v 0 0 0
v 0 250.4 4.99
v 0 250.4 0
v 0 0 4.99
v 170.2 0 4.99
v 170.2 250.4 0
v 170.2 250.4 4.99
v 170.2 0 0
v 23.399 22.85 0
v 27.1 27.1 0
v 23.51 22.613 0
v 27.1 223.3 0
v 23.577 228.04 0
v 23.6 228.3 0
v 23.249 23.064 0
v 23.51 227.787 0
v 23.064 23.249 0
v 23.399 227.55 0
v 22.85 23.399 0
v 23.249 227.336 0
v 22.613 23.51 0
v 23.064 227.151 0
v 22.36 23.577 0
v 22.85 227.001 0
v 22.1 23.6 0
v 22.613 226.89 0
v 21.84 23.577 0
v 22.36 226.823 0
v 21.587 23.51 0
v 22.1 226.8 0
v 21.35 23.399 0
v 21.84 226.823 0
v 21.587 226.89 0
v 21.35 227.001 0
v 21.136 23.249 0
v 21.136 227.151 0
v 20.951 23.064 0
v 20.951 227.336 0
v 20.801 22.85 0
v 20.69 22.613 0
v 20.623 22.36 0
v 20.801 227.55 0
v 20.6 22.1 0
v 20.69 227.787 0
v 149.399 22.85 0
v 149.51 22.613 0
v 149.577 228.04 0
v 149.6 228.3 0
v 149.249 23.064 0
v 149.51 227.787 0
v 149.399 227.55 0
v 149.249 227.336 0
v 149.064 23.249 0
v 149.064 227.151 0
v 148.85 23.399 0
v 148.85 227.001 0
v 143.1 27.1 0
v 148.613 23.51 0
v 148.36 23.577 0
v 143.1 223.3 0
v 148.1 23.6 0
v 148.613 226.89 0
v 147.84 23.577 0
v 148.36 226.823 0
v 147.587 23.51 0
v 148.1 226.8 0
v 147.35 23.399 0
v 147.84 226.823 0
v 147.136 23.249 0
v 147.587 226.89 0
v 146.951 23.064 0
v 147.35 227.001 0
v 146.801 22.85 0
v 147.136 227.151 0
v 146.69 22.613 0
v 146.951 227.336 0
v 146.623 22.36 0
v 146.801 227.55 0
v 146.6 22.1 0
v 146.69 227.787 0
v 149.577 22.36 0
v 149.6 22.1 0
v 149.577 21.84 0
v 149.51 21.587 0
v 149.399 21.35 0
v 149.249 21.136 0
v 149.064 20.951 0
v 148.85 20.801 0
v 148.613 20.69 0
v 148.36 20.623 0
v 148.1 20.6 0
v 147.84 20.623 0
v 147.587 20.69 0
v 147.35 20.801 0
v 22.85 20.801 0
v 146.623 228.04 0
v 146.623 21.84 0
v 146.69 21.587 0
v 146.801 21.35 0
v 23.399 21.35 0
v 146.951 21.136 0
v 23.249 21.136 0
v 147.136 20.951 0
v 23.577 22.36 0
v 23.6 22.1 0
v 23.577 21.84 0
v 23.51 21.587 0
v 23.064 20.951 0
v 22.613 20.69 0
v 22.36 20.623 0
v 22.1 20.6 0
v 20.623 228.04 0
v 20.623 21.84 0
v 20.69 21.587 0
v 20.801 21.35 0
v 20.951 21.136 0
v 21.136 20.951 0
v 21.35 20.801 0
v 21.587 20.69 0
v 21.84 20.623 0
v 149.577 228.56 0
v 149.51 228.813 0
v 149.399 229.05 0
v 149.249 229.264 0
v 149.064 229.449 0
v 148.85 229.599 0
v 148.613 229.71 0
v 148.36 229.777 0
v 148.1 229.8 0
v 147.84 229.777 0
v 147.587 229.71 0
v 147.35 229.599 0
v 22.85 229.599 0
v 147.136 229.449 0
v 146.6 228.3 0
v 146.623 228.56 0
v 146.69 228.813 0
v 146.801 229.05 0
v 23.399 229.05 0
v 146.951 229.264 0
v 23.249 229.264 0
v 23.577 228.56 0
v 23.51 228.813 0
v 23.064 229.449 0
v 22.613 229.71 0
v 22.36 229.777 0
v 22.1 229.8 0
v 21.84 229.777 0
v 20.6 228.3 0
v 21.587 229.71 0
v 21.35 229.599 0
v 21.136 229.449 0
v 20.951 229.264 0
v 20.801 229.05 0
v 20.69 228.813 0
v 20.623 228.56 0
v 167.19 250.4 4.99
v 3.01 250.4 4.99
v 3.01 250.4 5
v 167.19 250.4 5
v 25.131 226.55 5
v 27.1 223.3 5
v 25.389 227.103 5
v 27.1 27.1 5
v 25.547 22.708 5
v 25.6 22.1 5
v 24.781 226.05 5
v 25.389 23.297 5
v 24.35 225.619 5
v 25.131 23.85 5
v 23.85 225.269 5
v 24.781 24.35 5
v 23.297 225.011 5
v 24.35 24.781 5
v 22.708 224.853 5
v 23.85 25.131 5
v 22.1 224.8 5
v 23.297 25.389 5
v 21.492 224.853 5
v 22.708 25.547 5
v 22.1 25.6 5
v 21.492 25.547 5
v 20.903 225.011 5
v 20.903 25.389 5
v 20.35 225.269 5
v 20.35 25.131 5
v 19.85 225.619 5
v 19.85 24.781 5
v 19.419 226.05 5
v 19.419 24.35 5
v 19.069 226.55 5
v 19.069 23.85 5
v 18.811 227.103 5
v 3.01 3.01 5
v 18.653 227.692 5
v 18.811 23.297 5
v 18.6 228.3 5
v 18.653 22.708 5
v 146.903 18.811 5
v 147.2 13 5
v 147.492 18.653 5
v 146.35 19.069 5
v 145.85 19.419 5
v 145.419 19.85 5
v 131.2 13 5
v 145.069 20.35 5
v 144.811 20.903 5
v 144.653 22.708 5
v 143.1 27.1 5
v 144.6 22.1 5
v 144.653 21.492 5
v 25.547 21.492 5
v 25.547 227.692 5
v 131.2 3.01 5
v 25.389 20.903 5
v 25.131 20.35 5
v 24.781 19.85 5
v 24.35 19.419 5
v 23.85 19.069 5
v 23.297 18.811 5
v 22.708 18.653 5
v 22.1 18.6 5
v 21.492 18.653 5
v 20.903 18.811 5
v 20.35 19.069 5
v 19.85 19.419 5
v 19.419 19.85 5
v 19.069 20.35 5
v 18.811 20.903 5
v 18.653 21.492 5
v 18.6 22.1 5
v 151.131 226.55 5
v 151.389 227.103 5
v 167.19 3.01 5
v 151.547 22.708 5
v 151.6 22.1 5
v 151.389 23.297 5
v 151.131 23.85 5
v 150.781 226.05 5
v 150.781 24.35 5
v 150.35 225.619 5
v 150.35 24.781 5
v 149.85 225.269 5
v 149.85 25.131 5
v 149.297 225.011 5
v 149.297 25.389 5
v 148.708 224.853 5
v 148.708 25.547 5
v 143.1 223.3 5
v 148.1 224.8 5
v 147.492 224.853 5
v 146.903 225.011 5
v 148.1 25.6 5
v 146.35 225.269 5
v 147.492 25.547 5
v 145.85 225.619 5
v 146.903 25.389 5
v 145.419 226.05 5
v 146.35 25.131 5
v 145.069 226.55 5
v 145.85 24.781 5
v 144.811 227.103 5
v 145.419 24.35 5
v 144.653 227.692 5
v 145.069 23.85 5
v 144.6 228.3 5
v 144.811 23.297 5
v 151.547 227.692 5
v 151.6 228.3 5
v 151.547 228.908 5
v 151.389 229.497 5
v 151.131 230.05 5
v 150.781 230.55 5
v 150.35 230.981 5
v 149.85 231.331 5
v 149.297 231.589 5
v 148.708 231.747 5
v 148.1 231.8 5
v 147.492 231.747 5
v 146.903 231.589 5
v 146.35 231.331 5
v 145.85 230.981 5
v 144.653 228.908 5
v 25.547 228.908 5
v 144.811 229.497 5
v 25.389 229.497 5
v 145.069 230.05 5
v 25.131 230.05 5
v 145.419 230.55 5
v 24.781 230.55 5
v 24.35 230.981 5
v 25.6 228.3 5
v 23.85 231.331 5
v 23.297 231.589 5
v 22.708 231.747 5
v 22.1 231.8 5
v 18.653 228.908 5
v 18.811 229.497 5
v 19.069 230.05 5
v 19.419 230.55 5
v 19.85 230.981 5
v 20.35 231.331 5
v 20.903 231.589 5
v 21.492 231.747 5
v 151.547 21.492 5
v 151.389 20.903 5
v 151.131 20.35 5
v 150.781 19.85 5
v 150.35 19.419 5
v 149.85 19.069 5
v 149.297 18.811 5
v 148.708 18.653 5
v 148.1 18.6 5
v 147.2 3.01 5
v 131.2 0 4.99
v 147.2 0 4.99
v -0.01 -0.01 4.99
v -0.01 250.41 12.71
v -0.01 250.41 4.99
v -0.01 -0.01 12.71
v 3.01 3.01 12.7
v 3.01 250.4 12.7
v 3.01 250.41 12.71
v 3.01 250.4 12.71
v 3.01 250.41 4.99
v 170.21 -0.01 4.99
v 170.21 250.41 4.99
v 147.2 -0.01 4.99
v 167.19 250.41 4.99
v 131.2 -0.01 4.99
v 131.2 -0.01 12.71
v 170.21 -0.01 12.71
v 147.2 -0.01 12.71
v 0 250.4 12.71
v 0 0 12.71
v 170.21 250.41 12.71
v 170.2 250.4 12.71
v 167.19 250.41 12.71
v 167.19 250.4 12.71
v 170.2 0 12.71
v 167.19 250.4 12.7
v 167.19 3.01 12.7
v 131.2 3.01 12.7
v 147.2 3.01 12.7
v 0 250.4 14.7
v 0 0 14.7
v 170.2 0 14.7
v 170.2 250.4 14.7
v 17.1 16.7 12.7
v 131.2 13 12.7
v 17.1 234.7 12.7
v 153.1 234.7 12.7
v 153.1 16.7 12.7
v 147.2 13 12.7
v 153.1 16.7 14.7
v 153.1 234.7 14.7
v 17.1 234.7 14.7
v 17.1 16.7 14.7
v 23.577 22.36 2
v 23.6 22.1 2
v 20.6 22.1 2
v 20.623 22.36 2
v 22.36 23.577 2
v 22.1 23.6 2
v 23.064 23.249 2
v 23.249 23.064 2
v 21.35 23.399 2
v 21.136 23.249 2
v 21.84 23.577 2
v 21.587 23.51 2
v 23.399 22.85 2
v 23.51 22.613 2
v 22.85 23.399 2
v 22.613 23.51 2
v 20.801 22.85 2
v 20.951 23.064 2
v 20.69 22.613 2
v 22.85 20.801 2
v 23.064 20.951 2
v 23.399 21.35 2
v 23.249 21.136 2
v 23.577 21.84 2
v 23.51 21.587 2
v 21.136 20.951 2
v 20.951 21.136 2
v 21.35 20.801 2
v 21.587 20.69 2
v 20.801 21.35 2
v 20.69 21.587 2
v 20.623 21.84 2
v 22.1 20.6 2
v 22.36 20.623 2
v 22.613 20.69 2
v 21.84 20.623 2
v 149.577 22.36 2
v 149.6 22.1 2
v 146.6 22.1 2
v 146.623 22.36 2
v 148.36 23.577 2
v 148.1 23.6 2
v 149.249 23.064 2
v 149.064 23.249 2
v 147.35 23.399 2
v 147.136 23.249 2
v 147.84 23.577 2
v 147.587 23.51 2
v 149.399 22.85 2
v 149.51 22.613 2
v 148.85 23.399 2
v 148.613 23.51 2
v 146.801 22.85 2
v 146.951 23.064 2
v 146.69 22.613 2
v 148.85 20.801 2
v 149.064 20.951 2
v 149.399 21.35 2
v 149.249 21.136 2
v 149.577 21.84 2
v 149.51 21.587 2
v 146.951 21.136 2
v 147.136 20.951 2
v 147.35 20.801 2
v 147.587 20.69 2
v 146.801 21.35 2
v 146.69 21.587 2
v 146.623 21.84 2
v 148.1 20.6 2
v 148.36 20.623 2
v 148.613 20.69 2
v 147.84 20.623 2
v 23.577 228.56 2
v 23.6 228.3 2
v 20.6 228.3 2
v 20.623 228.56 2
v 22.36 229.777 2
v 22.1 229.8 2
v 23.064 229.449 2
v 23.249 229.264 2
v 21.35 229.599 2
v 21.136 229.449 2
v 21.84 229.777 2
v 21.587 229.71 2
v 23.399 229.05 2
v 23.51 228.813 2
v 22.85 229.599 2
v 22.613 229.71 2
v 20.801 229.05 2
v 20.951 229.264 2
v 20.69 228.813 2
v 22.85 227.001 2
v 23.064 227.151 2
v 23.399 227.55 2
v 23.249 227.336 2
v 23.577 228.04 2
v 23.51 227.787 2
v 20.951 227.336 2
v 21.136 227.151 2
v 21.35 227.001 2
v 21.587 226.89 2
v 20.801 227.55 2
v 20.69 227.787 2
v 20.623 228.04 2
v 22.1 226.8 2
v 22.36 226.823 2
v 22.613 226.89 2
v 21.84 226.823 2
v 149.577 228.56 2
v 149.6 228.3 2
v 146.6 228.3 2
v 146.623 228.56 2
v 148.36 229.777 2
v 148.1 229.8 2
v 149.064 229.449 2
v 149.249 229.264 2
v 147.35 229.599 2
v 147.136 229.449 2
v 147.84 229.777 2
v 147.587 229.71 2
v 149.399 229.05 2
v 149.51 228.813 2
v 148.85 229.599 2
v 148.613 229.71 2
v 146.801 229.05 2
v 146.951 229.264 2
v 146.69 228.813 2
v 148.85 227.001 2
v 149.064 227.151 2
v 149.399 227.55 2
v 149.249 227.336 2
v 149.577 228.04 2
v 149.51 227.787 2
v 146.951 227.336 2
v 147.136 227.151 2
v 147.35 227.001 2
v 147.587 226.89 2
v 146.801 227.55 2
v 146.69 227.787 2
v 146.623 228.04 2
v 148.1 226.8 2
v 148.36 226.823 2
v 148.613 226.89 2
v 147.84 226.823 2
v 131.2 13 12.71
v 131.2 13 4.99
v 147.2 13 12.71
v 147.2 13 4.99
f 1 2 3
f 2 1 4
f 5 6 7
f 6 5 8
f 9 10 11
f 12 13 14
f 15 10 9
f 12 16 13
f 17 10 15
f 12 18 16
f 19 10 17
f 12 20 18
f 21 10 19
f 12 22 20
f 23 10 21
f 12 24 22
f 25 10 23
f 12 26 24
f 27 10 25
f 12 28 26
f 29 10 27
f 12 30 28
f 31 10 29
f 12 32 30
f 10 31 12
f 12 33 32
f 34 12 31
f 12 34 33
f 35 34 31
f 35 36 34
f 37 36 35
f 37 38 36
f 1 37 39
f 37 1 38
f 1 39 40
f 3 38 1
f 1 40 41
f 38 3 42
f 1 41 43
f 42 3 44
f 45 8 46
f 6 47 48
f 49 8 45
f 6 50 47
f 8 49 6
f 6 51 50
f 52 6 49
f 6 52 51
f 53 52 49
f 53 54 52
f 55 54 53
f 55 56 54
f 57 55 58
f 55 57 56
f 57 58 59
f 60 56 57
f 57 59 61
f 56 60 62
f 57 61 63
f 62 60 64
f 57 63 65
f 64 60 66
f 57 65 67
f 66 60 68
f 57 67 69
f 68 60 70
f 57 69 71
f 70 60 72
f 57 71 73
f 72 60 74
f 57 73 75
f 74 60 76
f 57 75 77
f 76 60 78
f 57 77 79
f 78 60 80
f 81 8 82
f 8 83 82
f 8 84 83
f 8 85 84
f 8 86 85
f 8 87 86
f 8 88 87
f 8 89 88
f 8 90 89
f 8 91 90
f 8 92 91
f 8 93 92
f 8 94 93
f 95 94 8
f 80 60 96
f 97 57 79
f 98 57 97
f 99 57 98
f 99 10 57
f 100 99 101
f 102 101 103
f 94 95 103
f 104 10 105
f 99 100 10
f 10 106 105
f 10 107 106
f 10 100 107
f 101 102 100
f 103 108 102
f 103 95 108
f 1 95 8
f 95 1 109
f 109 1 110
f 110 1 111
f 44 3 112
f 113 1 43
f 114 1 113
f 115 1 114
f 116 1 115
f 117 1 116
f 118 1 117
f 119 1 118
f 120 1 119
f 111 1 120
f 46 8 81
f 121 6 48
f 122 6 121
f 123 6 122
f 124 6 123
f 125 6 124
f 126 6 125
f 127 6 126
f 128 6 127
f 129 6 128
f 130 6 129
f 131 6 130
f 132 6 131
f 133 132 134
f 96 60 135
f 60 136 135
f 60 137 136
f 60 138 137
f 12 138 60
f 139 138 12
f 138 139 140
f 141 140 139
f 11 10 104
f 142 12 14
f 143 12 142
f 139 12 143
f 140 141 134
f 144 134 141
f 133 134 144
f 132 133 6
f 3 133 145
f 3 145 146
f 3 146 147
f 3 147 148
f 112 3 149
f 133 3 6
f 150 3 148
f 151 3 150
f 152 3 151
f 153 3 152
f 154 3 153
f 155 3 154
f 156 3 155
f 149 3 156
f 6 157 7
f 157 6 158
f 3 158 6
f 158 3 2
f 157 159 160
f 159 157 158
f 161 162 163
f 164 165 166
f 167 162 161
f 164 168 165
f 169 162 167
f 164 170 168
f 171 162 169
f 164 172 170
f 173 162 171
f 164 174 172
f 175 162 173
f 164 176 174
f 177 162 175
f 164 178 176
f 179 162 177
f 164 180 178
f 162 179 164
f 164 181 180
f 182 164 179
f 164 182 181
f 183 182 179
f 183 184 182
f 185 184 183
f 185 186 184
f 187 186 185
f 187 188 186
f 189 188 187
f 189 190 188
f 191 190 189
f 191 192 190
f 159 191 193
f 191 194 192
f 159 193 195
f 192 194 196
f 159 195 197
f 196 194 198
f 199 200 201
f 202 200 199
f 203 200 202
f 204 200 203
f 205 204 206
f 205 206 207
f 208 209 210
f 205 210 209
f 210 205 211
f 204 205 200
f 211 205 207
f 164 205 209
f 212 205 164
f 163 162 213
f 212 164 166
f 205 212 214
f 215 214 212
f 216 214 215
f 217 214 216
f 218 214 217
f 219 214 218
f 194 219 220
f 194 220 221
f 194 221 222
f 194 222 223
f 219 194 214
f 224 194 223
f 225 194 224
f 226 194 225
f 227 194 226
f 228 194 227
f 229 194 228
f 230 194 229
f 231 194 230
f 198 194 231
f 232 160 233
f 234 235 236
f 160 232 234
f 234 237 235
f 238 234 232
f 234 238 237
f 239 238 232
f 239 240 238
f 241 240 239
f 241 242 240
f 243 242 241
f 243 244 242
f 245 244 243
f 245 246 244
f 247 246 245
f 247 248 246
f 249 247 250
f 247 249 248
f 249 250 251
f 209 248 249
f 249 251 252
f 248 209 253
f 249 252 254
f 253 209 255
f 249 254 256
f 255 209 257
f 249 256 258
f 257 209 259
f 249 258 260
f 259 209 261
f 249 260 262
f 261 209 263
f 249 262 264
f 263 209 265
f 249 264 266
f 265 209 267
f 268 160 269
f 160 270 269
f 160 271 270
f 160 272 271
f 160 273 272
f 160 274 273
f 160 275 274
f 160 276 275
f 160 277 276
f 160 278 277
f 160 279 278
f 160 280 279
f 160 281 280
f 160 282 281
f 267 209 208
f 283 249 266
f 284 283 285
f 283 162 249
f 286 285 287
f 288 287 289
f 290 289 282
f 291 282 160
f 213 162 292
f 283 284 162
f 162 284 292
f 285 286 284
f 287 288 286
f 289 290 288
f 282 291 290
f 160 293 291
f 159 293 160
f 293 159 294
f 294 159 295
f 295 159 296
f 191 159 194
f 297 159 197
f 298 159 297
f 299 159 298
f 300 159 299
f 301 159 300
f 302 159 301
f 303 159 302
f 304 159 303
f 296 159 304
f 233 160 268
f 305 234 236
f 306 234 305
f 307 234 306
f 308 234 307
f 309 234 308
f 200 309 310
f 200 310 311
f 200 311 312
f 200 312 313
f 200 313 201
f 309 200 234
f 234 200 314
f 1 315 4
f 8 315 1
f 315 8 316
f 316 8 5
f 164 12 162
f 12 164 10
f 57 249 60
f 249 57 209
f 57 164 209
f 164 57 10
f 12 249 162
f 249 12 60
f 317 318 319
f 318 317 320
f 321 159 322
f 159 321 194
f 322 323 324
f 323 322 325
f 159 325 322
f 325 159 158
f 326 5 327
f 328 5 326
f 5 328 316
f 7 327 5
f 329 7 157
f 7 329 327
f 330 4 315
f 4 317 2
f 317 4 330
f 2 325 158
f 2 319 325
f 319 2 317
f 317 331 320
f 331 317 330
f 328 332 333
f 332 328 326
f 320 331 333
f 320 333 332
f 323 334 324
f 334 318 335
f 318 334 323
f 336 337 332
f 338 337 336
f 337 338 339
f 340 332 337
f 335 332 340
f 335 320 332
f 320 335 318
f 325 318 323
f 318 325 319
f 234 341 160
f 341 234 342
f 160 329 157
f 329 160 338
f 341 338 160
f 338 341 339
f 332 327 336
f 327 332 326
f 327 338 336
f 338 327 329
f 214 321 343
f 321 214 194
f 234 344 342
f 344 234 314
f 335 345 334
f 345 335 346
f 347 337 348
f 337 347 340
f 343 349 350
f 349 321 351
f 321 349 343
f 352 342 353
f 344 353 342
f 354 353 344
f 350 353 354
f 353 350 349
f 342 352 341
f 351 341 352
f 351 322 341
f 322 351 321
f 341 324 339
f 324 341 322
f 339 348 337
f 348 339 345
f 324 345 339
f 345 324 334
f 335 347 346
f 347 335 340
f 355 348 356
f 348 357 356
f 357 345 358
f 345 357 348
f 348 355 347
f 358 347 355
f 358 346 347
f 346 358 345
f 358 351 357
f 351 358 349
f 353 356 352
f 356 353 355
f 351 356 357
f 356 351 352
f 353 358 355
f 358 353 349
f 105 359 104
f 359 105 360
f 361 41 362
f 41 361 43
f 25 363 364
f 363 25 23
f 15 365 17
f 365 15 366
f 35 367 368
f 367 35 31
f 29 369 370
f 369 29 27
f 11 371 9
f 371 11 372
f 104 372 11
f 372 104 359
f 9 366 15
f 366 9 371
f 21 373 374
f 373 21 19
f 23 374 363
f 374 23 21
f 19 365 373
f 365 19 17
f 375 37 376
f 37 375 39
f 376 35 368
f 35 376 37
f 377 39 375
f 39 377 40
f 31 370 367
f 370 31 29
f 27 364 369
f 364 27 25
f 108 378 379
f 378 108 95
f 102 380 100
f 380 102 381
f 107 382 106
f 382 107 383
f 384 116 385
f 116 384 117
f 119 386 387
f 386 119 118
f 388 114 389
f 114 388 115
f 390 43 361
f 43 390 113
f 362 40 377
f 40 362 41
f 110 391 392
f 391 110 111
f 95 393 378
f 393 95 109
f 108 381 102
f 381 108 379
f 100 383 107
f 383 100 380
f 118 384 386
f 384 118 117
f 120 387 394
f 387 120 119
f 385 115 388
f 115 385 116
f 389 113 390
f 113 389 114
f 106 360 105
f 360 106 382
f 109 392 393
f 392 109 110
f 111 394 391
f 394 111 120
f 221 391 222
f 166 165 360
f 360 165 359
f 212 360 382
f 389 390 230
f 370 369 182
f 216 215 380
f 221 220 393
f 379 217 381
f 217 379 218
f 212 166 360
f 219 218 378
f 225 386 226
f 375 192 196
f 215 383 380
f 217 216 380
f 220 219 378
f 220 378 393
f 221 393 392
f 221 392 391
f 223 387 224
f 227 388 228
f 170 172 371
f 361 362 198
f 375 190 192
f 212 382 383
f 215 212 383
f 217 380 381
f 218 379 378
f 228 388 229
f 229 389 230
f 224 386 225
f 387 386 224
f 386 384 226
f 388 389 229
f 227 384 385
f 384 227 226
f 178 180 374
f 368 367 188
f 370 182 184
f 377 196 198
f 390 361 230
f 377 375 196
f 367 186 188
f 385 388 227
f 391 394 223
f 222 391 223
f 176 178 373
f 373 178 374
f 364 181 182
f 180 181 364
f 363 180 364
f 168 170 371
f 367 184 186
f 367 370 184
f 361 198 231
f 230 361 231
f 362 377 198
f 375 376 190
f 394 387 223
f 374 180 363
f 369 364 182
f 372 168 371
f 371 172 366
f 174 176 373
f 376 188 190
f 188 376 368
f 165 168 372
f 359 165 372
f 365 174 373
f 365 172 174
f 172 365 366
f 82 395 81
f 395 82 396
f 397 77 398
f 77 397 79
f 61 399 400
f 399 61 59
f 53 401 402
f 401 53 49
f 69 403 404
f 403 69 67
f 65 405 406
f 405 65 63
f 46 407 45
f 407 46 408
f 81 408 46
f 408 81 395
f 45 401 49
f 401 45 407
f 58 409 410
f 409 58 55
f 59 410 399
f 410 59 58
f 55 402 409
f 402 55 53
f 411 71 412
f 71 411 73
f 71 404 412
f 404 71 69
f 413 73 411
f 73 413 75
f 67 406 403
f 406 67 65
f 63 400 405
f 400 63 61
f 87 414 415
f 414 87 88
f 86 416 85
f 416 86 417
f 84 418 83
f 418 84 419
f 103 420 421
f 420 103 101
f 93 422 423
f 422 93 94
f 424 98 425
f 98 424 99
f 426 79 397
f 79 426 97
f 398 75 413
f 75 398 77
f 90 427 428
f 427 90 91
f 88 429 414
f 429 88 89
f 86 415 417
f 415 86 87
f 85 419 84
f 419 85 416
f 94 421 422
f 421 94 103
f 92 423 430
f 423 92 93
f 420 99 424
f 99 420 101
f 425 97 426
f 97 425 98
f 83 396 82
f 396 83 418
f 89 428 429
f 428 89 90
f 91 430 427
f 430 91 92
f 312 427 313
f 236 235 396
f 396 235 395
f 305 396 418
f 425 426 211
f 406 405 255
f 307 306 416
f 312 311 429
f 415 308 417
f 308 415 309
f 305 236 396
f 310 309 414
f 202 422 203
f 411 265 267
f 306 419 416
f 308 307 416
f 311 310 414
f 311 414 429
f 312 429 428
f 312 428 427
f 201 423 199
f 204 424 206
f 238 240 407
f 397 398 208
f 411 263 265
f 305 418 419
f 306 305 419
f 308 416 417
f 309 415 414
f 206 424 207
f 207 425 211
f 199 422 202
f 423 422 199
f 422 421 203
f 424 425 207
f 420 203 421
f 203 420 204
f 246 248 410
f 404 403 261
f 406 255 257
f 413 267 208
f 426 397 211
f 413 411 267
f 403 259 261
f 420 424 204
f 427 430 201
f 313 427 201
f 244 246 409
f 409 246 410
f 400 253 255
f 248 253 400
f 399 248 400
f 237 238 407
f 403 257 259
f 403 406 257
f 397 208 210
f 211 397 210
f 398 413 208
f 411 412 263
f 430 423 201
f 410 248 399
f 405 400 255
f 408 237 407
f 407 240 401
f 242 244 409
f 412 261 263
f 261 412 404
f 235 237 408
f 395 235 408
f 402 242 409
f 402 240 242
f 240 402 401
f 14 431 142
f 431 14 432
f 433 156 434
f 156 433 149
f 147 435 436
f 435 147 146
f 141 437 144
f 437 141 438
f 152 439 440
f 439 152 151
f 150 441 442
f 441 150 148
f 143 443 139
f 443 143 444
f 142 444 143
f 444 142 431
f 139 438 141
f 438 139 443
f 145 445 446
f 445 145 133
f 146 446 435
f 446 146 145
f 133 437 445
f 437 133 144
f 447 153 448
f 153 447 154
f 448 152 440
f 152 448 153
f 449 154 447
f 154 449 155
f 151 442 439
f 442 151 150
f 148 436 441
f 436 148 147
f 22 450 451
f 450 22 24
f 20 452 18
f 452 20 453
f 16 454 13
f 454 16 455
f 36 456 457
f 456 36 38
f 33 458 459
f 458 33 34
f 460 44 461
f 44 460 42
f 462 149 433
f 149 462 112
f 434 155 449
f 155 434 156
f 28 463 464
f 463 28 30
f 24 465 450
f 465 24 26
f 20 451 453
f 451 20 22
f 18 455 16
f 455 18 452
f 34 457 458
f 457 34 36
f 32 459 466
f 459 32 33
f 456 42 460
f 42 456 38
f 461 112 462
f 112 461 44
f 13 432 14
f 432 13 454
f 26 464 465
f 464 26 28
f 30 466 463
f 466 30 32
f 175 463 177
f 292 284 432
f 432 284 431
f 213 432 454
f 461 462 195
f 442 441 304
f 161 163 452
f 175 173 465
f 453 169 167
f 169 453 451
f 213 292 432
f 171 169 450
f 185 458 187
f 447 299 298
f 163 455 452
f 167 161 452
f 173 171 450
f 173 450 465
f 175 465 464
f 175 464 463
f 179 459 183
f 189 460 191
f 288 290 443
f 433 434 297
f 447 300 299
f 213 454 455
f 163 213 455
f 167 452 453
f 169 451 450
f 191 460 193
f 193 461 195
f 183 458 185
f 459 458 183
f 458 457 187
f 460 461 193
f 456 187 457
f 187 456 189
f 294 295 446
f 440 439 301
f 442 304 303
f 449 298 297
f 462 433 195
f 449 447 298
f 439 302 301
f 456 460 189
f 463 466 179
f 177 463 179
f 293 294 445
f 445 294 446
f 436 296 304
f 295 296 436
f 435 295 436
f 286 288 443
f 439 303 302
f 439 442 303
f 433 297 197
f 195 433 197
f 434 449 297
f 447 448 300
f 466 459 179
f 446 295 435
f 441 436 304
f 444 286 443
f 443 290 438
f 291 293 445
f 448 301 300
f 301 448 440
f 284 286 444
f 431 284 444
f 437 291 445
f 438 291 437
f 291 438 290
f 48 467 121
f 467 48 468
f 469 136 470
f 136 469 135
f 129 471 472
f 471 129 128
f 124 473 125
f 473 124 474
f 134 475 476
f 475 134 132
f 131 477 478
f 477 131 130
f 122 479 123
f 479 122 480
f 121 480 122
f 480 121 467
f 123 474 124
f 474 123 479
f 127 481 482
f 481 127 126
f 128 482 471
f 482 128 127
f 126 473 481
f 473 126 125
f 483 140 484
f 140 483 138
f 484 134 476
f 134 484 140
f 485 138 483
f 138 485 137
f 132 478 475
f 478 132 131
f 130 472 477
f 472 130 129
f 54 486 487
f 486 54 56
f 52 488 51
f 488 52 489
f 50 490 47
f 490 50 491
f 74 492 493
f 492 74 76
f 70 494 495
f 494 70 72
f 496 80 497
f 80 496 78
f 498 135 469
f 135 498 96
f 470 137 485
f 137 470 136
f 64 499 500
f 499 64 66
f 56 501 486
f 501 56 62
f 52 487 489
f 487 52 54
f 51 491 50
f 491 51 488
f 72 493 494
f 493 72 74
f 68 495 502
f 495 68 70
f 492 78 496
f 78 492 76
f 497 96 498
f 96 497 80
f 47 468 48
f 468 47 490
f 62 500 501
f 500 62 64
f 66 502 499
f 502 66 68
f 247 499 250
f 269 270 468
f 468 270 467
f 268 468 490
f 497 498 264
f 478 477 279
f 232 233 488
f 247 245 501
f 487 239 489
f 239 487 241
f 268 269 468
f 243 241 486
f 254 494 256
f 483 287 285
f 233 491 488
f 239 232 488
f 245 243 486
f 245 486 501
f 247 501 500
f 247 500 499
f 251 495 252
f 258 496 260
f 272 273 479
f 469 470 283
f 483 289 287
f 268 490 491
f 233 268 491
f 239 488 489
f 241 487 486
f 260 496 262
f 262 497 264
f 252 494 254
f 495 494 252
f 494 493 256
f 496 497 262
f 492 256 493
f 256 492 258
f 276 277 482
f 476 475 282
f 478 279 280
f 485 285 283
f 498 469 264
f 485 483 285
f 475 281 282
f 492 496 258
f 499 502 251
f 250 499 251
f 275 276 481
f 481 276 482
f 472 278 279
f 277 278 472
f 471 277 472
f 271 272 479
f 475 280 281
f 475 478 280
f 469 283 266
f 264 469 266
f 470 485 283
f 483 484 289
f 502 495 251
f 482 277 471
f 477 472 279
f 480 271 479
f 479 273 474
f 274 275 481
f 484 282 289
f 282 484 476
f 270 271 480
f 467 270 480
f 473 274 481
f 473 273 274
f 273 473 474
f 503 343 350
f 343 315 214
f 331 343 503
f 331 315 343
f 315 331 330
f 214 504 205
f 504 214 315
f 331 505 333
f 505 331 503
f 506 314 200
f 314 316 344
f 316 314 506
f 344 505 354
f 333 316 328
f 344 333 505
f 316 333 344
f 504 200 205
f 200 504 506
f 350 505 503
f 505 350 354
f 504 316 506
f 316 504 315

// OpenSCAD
// ============================================================
// Tablet Wall Holder — Huawei MediaPad M5 Lite (BAH2-W19)
// See README.md for design description.
// ============================================================

// --- Tablet Dimensions (Huawei MediaPad M5 Lite BAH2-W19) ---
tablet_width   = 162.2;
tablet_height  = 243.4;
tablet_depth   = 7.7;

// --- Screen Area ---
screen_width   = 136;
screen_height  = 218;

// --- Clearance ---
clearance      = 1.0;

// --- Wall Thicknesses ---
back_thickness  = 5.0;   // backplate thickness (Z direction)
wall_thickness  = 3.0;   // side wall thickness (X/Y direction)
front_thickness = 2.0;   // front bezel thickness (Z direction)

// --- Screw Holes ---
screw_dia      = 3.0;  // shaft diameter (3mm screw)
screw_head_dia = 7.0;  // head recess diameter (7mm head)
screw_head_dep = 3.0;  // head recess depth (3mm head height)

// --- Screw Position ---
// Screws are positioned ~5mm from the screen window edge,
// so they are visible/accessible through the frontplate opening.
screw_margin   = 5.0;  // distance from screen window edge to screw center

// --- USB-C Cutout ---
usb_width      = 16;
usb_height     = 10;
usb_from_right = 27;  // from RIGHT edge of tablet to USB-C center

// --- Backplate Inner Cutout Margin ---
// The backplate inner cutout must be wider than the screw position
// so the screw holes are within the backplate frame.
// Holes shall be not nearer than 5mm to the edge of the back panel.
backplate_margin = 5.0; // extra margin beyond screw center

// ============================================================
// DERIVED DIMENSIONS
// ============================================================

// Cavity dimensions (where the tablet sits)
cavity_w = tablet_width  + 2 * clearance;
cavity_h = tablet_height + clearance;  // open at top (+1mm at top)

// Outer dimensions of the holder (same for all frames)
// backplate_rim = wall_thickness so side walls are at the outer edge
outer_w = cavity_w + 2 * wall_thickness;
outer_h = cavity_h + 2 * wall_thickness;

// Cavity position (from outer edge, inward by wall_thickness)
cavity_x = wall_thickness;
cavity_y = wall_thickness;

// Frontplate inner cutout = screen window (centered on tablet)
fp_inner_x = cavity_x + clearance + (tablet_width  - screen_width)  / 2;
fp_inner_y = cavity_y + clearance + (tablet_height - screen_height) / 2;

// Screw position: ~5mm from screen window edge
screw_from_edge = fp_inner_x + screw_margin;

// Backplate inner cutout: wider than screw position by margin
backplate_inner = screw_from_edge + backplate_margin;

// USB-C center X (relative to outer left edge)
usb_cx = cavity_x + clearance + tablet_width - usb_from_right;

// ============================================================
// Helper: Outer polygon (counter-clockwise)
// ============================================================
function outer_poly(w, h) = [
    [0, 0], [w, 0], [w, h], [0, h]
];

// ============================================================
// Helper: Inner cutout polygon (counter-clockwise)
// ============================================================
function inner_poly(w, h, left, right, bottom, top) = [
    [left, bottom],
    [w - right, bottom],
    [w - right, h - top],
    [left, h - top]
];

// ============================================================
// Screw Hole Module
// Countersunk from the FRONT so screw heads are recessed
// into the backplate and accessible from the front.
// Shaft goes through the backplate only.
// ============================================================

module screw_hole() {
    // Shaft through the backplate only (3mm diameter)
    cylinder(h = back_thickness, d = screw_dia, $fn = 36);
    // Countersunk head at the front of the backplate (Z=back_thickness)
    // Conical recess for flathead screw: 3mm at bottom (shaft), 7mm at top (head)
    // 3mm deep, recessed into the backplate so it doesn't scratch the tablet
    // d1 = screw_dia (bottom, matches shaft), d2 = screw_head_dia (top, flathead)
    translate([0, 0, back_thickness - screw_head_dep])
        cylinder(h = screw_head_dep, d1 = screw_dia, d2 = screw_head_dia, $fn = 36);
}

// ============================================================
// Main Holder
// ============================================================
module tablet_holder() {
    difference() {
        union() {
            // 1. BACKPLATE — frame (not solid) against the wall
            // Outer rectangle minus inner cutout.
            // The backplate frame is broader inwards than the frontplate,
            // meaning the backplate extends further toward the center
            // than the frontplate's inner cutout (screen window).
            // This allows screw holes to be positioned in the backplate
            // area that is visible through the screen window.
            difference() {
                linear_extrude(height = back_thickness)
                    polygon(outer_poly(outer_w, outer_h));
                translate([0, 0, -0.01])
                    linear_extrude(height = back_thickness + 0.02)
                        polygon(inner_poly(outer_w, outer_h,
                            backplate_inner, backplate_inner,
                            backplate_inner, backplate_inner));
            }

            // 2. SIDE FRAME — 3-sided wall (left, right, bottom)
            // Forms the cavity for the tablet. Open at top for slide-in.
            // Cavity bottom/right/left is formed by the side frame.
            // Cavity front/back is formed by the frontplate and backplate.
            // Walls are wall_thickness wide, positioned at the CAVITY EDGE
            // (extending outward from the cavity).
            translate([0, 0, back_thickness - 0.01]) {
                // Left wall: from cavity_x - wall_thickness to cavity_x
                linear_extrude(height = tablet_depth + 0.02)
                    polygon([
                        [cavity_x - wall_thickness - 0.01, -0.01],
                        [cavity_x + 0.01, -0.01],
                        [cavity_x + 0.01, outer_h + 0.01],
                        [cavity_x - wall_thickness - 0.01, outer_h + 0.01]
                    ]);
                // Right wall: from cavity_x + cavity_w to cavity_x + cavity_w + wall_thickness
                linear_extrude(height = tablet_depth + 0.02)
                    polygon([
                        [cavity_x + cavity_w - 0.01, -0.01],
                        [cavity_x + cavity_w + wall_thickness + 0.01, -0.01],
                        [cavity_x + cavity_w + wall_thickness + 0.01, outer_h + 0.01],
                        [cavity_x + cavity_w - 0.01, outer_h + 0.01]
                    ]);
                // Bottom wall: from cavity_y - wall_thickness to cavity_y
                linear_extrude(height = tablet_depth + 0.02)
                    polygon([
                        [-0.01, cavity_y - wall_thickness - 0.01],
                        [outer_w + 0.01, cavity_y - wall_thickness - 0.01],
                        [outer_w + 0.01, cavity_y + 0.01],
                        [-0.01, cavity_y + 0.01]
                    ]);
            }

            // 3. FRONTPLATE — bezel-hiding frame
            // Sits on top of the side walls.
            // Same outer dimensions as backplate (all frames same outer size).
            // Inner cutout is the screen window, covering the tablet's
            // black bezel around the screen.
            translate([0, 0, back_thickness + tablet_depth]) {
                difference() {
                    linear_extrude(height = front_thickness)
                        polygon(outer_poly(outer_w, outer_h));
                    translate([0, 0, -0.01])
                        linear_extrude(height = front_thickness + 0.02)
                            polygon(inner_poly(outer_w, outer_h,
                                fp_inner_x, outer_w - fp_inner_x - screen_width,
                                fp_inner_y, outer_h - fp_inner_y - screen_height));
                }
            }
        }

        // USB CUTOUT — at the BOTTOM of the model
        // On the side frame ONLY (not through backplate or frontplate)
        // Positioned at the bottom wall, extending into the cavity
        // for USB-C plug clearance.
        // Y: from slightly below bottom wall to cavity_y + usb_height
        // Z: from back_thickness (side frame start) to back_thickness + tablet_depth
        translate([usb_cx - usb_width/2, cavity_y - wall_thickness - 0.02, back_thickness - 0.01])
            cube([usb_width, wall_thickness + usb_height + 0.02, tablet_depth + 0.02]);

        // 4 SCREW HOLES — at the 4 corners of the backplate frame
        // Positioned more inwards than the frontplate's inner cutout,
        // so they are visible/accessible from the front through the
        // screen window opening of the frontplate.
        translate([screw_from_edge, screw_from_edge, 0]) screw_hole();
        translate([outer_w - screw_from_edge, screw_from_edge, 0]) screw_hole();
        translate([screw_from_edge, outer_h - screw_from_edge, 0]) screw_hole();
        translate([outer_w - screw_from_edge, outer_h - screw_from_edge, 0]) screw_hole();
    }
}

// Render
tablet_holder();
